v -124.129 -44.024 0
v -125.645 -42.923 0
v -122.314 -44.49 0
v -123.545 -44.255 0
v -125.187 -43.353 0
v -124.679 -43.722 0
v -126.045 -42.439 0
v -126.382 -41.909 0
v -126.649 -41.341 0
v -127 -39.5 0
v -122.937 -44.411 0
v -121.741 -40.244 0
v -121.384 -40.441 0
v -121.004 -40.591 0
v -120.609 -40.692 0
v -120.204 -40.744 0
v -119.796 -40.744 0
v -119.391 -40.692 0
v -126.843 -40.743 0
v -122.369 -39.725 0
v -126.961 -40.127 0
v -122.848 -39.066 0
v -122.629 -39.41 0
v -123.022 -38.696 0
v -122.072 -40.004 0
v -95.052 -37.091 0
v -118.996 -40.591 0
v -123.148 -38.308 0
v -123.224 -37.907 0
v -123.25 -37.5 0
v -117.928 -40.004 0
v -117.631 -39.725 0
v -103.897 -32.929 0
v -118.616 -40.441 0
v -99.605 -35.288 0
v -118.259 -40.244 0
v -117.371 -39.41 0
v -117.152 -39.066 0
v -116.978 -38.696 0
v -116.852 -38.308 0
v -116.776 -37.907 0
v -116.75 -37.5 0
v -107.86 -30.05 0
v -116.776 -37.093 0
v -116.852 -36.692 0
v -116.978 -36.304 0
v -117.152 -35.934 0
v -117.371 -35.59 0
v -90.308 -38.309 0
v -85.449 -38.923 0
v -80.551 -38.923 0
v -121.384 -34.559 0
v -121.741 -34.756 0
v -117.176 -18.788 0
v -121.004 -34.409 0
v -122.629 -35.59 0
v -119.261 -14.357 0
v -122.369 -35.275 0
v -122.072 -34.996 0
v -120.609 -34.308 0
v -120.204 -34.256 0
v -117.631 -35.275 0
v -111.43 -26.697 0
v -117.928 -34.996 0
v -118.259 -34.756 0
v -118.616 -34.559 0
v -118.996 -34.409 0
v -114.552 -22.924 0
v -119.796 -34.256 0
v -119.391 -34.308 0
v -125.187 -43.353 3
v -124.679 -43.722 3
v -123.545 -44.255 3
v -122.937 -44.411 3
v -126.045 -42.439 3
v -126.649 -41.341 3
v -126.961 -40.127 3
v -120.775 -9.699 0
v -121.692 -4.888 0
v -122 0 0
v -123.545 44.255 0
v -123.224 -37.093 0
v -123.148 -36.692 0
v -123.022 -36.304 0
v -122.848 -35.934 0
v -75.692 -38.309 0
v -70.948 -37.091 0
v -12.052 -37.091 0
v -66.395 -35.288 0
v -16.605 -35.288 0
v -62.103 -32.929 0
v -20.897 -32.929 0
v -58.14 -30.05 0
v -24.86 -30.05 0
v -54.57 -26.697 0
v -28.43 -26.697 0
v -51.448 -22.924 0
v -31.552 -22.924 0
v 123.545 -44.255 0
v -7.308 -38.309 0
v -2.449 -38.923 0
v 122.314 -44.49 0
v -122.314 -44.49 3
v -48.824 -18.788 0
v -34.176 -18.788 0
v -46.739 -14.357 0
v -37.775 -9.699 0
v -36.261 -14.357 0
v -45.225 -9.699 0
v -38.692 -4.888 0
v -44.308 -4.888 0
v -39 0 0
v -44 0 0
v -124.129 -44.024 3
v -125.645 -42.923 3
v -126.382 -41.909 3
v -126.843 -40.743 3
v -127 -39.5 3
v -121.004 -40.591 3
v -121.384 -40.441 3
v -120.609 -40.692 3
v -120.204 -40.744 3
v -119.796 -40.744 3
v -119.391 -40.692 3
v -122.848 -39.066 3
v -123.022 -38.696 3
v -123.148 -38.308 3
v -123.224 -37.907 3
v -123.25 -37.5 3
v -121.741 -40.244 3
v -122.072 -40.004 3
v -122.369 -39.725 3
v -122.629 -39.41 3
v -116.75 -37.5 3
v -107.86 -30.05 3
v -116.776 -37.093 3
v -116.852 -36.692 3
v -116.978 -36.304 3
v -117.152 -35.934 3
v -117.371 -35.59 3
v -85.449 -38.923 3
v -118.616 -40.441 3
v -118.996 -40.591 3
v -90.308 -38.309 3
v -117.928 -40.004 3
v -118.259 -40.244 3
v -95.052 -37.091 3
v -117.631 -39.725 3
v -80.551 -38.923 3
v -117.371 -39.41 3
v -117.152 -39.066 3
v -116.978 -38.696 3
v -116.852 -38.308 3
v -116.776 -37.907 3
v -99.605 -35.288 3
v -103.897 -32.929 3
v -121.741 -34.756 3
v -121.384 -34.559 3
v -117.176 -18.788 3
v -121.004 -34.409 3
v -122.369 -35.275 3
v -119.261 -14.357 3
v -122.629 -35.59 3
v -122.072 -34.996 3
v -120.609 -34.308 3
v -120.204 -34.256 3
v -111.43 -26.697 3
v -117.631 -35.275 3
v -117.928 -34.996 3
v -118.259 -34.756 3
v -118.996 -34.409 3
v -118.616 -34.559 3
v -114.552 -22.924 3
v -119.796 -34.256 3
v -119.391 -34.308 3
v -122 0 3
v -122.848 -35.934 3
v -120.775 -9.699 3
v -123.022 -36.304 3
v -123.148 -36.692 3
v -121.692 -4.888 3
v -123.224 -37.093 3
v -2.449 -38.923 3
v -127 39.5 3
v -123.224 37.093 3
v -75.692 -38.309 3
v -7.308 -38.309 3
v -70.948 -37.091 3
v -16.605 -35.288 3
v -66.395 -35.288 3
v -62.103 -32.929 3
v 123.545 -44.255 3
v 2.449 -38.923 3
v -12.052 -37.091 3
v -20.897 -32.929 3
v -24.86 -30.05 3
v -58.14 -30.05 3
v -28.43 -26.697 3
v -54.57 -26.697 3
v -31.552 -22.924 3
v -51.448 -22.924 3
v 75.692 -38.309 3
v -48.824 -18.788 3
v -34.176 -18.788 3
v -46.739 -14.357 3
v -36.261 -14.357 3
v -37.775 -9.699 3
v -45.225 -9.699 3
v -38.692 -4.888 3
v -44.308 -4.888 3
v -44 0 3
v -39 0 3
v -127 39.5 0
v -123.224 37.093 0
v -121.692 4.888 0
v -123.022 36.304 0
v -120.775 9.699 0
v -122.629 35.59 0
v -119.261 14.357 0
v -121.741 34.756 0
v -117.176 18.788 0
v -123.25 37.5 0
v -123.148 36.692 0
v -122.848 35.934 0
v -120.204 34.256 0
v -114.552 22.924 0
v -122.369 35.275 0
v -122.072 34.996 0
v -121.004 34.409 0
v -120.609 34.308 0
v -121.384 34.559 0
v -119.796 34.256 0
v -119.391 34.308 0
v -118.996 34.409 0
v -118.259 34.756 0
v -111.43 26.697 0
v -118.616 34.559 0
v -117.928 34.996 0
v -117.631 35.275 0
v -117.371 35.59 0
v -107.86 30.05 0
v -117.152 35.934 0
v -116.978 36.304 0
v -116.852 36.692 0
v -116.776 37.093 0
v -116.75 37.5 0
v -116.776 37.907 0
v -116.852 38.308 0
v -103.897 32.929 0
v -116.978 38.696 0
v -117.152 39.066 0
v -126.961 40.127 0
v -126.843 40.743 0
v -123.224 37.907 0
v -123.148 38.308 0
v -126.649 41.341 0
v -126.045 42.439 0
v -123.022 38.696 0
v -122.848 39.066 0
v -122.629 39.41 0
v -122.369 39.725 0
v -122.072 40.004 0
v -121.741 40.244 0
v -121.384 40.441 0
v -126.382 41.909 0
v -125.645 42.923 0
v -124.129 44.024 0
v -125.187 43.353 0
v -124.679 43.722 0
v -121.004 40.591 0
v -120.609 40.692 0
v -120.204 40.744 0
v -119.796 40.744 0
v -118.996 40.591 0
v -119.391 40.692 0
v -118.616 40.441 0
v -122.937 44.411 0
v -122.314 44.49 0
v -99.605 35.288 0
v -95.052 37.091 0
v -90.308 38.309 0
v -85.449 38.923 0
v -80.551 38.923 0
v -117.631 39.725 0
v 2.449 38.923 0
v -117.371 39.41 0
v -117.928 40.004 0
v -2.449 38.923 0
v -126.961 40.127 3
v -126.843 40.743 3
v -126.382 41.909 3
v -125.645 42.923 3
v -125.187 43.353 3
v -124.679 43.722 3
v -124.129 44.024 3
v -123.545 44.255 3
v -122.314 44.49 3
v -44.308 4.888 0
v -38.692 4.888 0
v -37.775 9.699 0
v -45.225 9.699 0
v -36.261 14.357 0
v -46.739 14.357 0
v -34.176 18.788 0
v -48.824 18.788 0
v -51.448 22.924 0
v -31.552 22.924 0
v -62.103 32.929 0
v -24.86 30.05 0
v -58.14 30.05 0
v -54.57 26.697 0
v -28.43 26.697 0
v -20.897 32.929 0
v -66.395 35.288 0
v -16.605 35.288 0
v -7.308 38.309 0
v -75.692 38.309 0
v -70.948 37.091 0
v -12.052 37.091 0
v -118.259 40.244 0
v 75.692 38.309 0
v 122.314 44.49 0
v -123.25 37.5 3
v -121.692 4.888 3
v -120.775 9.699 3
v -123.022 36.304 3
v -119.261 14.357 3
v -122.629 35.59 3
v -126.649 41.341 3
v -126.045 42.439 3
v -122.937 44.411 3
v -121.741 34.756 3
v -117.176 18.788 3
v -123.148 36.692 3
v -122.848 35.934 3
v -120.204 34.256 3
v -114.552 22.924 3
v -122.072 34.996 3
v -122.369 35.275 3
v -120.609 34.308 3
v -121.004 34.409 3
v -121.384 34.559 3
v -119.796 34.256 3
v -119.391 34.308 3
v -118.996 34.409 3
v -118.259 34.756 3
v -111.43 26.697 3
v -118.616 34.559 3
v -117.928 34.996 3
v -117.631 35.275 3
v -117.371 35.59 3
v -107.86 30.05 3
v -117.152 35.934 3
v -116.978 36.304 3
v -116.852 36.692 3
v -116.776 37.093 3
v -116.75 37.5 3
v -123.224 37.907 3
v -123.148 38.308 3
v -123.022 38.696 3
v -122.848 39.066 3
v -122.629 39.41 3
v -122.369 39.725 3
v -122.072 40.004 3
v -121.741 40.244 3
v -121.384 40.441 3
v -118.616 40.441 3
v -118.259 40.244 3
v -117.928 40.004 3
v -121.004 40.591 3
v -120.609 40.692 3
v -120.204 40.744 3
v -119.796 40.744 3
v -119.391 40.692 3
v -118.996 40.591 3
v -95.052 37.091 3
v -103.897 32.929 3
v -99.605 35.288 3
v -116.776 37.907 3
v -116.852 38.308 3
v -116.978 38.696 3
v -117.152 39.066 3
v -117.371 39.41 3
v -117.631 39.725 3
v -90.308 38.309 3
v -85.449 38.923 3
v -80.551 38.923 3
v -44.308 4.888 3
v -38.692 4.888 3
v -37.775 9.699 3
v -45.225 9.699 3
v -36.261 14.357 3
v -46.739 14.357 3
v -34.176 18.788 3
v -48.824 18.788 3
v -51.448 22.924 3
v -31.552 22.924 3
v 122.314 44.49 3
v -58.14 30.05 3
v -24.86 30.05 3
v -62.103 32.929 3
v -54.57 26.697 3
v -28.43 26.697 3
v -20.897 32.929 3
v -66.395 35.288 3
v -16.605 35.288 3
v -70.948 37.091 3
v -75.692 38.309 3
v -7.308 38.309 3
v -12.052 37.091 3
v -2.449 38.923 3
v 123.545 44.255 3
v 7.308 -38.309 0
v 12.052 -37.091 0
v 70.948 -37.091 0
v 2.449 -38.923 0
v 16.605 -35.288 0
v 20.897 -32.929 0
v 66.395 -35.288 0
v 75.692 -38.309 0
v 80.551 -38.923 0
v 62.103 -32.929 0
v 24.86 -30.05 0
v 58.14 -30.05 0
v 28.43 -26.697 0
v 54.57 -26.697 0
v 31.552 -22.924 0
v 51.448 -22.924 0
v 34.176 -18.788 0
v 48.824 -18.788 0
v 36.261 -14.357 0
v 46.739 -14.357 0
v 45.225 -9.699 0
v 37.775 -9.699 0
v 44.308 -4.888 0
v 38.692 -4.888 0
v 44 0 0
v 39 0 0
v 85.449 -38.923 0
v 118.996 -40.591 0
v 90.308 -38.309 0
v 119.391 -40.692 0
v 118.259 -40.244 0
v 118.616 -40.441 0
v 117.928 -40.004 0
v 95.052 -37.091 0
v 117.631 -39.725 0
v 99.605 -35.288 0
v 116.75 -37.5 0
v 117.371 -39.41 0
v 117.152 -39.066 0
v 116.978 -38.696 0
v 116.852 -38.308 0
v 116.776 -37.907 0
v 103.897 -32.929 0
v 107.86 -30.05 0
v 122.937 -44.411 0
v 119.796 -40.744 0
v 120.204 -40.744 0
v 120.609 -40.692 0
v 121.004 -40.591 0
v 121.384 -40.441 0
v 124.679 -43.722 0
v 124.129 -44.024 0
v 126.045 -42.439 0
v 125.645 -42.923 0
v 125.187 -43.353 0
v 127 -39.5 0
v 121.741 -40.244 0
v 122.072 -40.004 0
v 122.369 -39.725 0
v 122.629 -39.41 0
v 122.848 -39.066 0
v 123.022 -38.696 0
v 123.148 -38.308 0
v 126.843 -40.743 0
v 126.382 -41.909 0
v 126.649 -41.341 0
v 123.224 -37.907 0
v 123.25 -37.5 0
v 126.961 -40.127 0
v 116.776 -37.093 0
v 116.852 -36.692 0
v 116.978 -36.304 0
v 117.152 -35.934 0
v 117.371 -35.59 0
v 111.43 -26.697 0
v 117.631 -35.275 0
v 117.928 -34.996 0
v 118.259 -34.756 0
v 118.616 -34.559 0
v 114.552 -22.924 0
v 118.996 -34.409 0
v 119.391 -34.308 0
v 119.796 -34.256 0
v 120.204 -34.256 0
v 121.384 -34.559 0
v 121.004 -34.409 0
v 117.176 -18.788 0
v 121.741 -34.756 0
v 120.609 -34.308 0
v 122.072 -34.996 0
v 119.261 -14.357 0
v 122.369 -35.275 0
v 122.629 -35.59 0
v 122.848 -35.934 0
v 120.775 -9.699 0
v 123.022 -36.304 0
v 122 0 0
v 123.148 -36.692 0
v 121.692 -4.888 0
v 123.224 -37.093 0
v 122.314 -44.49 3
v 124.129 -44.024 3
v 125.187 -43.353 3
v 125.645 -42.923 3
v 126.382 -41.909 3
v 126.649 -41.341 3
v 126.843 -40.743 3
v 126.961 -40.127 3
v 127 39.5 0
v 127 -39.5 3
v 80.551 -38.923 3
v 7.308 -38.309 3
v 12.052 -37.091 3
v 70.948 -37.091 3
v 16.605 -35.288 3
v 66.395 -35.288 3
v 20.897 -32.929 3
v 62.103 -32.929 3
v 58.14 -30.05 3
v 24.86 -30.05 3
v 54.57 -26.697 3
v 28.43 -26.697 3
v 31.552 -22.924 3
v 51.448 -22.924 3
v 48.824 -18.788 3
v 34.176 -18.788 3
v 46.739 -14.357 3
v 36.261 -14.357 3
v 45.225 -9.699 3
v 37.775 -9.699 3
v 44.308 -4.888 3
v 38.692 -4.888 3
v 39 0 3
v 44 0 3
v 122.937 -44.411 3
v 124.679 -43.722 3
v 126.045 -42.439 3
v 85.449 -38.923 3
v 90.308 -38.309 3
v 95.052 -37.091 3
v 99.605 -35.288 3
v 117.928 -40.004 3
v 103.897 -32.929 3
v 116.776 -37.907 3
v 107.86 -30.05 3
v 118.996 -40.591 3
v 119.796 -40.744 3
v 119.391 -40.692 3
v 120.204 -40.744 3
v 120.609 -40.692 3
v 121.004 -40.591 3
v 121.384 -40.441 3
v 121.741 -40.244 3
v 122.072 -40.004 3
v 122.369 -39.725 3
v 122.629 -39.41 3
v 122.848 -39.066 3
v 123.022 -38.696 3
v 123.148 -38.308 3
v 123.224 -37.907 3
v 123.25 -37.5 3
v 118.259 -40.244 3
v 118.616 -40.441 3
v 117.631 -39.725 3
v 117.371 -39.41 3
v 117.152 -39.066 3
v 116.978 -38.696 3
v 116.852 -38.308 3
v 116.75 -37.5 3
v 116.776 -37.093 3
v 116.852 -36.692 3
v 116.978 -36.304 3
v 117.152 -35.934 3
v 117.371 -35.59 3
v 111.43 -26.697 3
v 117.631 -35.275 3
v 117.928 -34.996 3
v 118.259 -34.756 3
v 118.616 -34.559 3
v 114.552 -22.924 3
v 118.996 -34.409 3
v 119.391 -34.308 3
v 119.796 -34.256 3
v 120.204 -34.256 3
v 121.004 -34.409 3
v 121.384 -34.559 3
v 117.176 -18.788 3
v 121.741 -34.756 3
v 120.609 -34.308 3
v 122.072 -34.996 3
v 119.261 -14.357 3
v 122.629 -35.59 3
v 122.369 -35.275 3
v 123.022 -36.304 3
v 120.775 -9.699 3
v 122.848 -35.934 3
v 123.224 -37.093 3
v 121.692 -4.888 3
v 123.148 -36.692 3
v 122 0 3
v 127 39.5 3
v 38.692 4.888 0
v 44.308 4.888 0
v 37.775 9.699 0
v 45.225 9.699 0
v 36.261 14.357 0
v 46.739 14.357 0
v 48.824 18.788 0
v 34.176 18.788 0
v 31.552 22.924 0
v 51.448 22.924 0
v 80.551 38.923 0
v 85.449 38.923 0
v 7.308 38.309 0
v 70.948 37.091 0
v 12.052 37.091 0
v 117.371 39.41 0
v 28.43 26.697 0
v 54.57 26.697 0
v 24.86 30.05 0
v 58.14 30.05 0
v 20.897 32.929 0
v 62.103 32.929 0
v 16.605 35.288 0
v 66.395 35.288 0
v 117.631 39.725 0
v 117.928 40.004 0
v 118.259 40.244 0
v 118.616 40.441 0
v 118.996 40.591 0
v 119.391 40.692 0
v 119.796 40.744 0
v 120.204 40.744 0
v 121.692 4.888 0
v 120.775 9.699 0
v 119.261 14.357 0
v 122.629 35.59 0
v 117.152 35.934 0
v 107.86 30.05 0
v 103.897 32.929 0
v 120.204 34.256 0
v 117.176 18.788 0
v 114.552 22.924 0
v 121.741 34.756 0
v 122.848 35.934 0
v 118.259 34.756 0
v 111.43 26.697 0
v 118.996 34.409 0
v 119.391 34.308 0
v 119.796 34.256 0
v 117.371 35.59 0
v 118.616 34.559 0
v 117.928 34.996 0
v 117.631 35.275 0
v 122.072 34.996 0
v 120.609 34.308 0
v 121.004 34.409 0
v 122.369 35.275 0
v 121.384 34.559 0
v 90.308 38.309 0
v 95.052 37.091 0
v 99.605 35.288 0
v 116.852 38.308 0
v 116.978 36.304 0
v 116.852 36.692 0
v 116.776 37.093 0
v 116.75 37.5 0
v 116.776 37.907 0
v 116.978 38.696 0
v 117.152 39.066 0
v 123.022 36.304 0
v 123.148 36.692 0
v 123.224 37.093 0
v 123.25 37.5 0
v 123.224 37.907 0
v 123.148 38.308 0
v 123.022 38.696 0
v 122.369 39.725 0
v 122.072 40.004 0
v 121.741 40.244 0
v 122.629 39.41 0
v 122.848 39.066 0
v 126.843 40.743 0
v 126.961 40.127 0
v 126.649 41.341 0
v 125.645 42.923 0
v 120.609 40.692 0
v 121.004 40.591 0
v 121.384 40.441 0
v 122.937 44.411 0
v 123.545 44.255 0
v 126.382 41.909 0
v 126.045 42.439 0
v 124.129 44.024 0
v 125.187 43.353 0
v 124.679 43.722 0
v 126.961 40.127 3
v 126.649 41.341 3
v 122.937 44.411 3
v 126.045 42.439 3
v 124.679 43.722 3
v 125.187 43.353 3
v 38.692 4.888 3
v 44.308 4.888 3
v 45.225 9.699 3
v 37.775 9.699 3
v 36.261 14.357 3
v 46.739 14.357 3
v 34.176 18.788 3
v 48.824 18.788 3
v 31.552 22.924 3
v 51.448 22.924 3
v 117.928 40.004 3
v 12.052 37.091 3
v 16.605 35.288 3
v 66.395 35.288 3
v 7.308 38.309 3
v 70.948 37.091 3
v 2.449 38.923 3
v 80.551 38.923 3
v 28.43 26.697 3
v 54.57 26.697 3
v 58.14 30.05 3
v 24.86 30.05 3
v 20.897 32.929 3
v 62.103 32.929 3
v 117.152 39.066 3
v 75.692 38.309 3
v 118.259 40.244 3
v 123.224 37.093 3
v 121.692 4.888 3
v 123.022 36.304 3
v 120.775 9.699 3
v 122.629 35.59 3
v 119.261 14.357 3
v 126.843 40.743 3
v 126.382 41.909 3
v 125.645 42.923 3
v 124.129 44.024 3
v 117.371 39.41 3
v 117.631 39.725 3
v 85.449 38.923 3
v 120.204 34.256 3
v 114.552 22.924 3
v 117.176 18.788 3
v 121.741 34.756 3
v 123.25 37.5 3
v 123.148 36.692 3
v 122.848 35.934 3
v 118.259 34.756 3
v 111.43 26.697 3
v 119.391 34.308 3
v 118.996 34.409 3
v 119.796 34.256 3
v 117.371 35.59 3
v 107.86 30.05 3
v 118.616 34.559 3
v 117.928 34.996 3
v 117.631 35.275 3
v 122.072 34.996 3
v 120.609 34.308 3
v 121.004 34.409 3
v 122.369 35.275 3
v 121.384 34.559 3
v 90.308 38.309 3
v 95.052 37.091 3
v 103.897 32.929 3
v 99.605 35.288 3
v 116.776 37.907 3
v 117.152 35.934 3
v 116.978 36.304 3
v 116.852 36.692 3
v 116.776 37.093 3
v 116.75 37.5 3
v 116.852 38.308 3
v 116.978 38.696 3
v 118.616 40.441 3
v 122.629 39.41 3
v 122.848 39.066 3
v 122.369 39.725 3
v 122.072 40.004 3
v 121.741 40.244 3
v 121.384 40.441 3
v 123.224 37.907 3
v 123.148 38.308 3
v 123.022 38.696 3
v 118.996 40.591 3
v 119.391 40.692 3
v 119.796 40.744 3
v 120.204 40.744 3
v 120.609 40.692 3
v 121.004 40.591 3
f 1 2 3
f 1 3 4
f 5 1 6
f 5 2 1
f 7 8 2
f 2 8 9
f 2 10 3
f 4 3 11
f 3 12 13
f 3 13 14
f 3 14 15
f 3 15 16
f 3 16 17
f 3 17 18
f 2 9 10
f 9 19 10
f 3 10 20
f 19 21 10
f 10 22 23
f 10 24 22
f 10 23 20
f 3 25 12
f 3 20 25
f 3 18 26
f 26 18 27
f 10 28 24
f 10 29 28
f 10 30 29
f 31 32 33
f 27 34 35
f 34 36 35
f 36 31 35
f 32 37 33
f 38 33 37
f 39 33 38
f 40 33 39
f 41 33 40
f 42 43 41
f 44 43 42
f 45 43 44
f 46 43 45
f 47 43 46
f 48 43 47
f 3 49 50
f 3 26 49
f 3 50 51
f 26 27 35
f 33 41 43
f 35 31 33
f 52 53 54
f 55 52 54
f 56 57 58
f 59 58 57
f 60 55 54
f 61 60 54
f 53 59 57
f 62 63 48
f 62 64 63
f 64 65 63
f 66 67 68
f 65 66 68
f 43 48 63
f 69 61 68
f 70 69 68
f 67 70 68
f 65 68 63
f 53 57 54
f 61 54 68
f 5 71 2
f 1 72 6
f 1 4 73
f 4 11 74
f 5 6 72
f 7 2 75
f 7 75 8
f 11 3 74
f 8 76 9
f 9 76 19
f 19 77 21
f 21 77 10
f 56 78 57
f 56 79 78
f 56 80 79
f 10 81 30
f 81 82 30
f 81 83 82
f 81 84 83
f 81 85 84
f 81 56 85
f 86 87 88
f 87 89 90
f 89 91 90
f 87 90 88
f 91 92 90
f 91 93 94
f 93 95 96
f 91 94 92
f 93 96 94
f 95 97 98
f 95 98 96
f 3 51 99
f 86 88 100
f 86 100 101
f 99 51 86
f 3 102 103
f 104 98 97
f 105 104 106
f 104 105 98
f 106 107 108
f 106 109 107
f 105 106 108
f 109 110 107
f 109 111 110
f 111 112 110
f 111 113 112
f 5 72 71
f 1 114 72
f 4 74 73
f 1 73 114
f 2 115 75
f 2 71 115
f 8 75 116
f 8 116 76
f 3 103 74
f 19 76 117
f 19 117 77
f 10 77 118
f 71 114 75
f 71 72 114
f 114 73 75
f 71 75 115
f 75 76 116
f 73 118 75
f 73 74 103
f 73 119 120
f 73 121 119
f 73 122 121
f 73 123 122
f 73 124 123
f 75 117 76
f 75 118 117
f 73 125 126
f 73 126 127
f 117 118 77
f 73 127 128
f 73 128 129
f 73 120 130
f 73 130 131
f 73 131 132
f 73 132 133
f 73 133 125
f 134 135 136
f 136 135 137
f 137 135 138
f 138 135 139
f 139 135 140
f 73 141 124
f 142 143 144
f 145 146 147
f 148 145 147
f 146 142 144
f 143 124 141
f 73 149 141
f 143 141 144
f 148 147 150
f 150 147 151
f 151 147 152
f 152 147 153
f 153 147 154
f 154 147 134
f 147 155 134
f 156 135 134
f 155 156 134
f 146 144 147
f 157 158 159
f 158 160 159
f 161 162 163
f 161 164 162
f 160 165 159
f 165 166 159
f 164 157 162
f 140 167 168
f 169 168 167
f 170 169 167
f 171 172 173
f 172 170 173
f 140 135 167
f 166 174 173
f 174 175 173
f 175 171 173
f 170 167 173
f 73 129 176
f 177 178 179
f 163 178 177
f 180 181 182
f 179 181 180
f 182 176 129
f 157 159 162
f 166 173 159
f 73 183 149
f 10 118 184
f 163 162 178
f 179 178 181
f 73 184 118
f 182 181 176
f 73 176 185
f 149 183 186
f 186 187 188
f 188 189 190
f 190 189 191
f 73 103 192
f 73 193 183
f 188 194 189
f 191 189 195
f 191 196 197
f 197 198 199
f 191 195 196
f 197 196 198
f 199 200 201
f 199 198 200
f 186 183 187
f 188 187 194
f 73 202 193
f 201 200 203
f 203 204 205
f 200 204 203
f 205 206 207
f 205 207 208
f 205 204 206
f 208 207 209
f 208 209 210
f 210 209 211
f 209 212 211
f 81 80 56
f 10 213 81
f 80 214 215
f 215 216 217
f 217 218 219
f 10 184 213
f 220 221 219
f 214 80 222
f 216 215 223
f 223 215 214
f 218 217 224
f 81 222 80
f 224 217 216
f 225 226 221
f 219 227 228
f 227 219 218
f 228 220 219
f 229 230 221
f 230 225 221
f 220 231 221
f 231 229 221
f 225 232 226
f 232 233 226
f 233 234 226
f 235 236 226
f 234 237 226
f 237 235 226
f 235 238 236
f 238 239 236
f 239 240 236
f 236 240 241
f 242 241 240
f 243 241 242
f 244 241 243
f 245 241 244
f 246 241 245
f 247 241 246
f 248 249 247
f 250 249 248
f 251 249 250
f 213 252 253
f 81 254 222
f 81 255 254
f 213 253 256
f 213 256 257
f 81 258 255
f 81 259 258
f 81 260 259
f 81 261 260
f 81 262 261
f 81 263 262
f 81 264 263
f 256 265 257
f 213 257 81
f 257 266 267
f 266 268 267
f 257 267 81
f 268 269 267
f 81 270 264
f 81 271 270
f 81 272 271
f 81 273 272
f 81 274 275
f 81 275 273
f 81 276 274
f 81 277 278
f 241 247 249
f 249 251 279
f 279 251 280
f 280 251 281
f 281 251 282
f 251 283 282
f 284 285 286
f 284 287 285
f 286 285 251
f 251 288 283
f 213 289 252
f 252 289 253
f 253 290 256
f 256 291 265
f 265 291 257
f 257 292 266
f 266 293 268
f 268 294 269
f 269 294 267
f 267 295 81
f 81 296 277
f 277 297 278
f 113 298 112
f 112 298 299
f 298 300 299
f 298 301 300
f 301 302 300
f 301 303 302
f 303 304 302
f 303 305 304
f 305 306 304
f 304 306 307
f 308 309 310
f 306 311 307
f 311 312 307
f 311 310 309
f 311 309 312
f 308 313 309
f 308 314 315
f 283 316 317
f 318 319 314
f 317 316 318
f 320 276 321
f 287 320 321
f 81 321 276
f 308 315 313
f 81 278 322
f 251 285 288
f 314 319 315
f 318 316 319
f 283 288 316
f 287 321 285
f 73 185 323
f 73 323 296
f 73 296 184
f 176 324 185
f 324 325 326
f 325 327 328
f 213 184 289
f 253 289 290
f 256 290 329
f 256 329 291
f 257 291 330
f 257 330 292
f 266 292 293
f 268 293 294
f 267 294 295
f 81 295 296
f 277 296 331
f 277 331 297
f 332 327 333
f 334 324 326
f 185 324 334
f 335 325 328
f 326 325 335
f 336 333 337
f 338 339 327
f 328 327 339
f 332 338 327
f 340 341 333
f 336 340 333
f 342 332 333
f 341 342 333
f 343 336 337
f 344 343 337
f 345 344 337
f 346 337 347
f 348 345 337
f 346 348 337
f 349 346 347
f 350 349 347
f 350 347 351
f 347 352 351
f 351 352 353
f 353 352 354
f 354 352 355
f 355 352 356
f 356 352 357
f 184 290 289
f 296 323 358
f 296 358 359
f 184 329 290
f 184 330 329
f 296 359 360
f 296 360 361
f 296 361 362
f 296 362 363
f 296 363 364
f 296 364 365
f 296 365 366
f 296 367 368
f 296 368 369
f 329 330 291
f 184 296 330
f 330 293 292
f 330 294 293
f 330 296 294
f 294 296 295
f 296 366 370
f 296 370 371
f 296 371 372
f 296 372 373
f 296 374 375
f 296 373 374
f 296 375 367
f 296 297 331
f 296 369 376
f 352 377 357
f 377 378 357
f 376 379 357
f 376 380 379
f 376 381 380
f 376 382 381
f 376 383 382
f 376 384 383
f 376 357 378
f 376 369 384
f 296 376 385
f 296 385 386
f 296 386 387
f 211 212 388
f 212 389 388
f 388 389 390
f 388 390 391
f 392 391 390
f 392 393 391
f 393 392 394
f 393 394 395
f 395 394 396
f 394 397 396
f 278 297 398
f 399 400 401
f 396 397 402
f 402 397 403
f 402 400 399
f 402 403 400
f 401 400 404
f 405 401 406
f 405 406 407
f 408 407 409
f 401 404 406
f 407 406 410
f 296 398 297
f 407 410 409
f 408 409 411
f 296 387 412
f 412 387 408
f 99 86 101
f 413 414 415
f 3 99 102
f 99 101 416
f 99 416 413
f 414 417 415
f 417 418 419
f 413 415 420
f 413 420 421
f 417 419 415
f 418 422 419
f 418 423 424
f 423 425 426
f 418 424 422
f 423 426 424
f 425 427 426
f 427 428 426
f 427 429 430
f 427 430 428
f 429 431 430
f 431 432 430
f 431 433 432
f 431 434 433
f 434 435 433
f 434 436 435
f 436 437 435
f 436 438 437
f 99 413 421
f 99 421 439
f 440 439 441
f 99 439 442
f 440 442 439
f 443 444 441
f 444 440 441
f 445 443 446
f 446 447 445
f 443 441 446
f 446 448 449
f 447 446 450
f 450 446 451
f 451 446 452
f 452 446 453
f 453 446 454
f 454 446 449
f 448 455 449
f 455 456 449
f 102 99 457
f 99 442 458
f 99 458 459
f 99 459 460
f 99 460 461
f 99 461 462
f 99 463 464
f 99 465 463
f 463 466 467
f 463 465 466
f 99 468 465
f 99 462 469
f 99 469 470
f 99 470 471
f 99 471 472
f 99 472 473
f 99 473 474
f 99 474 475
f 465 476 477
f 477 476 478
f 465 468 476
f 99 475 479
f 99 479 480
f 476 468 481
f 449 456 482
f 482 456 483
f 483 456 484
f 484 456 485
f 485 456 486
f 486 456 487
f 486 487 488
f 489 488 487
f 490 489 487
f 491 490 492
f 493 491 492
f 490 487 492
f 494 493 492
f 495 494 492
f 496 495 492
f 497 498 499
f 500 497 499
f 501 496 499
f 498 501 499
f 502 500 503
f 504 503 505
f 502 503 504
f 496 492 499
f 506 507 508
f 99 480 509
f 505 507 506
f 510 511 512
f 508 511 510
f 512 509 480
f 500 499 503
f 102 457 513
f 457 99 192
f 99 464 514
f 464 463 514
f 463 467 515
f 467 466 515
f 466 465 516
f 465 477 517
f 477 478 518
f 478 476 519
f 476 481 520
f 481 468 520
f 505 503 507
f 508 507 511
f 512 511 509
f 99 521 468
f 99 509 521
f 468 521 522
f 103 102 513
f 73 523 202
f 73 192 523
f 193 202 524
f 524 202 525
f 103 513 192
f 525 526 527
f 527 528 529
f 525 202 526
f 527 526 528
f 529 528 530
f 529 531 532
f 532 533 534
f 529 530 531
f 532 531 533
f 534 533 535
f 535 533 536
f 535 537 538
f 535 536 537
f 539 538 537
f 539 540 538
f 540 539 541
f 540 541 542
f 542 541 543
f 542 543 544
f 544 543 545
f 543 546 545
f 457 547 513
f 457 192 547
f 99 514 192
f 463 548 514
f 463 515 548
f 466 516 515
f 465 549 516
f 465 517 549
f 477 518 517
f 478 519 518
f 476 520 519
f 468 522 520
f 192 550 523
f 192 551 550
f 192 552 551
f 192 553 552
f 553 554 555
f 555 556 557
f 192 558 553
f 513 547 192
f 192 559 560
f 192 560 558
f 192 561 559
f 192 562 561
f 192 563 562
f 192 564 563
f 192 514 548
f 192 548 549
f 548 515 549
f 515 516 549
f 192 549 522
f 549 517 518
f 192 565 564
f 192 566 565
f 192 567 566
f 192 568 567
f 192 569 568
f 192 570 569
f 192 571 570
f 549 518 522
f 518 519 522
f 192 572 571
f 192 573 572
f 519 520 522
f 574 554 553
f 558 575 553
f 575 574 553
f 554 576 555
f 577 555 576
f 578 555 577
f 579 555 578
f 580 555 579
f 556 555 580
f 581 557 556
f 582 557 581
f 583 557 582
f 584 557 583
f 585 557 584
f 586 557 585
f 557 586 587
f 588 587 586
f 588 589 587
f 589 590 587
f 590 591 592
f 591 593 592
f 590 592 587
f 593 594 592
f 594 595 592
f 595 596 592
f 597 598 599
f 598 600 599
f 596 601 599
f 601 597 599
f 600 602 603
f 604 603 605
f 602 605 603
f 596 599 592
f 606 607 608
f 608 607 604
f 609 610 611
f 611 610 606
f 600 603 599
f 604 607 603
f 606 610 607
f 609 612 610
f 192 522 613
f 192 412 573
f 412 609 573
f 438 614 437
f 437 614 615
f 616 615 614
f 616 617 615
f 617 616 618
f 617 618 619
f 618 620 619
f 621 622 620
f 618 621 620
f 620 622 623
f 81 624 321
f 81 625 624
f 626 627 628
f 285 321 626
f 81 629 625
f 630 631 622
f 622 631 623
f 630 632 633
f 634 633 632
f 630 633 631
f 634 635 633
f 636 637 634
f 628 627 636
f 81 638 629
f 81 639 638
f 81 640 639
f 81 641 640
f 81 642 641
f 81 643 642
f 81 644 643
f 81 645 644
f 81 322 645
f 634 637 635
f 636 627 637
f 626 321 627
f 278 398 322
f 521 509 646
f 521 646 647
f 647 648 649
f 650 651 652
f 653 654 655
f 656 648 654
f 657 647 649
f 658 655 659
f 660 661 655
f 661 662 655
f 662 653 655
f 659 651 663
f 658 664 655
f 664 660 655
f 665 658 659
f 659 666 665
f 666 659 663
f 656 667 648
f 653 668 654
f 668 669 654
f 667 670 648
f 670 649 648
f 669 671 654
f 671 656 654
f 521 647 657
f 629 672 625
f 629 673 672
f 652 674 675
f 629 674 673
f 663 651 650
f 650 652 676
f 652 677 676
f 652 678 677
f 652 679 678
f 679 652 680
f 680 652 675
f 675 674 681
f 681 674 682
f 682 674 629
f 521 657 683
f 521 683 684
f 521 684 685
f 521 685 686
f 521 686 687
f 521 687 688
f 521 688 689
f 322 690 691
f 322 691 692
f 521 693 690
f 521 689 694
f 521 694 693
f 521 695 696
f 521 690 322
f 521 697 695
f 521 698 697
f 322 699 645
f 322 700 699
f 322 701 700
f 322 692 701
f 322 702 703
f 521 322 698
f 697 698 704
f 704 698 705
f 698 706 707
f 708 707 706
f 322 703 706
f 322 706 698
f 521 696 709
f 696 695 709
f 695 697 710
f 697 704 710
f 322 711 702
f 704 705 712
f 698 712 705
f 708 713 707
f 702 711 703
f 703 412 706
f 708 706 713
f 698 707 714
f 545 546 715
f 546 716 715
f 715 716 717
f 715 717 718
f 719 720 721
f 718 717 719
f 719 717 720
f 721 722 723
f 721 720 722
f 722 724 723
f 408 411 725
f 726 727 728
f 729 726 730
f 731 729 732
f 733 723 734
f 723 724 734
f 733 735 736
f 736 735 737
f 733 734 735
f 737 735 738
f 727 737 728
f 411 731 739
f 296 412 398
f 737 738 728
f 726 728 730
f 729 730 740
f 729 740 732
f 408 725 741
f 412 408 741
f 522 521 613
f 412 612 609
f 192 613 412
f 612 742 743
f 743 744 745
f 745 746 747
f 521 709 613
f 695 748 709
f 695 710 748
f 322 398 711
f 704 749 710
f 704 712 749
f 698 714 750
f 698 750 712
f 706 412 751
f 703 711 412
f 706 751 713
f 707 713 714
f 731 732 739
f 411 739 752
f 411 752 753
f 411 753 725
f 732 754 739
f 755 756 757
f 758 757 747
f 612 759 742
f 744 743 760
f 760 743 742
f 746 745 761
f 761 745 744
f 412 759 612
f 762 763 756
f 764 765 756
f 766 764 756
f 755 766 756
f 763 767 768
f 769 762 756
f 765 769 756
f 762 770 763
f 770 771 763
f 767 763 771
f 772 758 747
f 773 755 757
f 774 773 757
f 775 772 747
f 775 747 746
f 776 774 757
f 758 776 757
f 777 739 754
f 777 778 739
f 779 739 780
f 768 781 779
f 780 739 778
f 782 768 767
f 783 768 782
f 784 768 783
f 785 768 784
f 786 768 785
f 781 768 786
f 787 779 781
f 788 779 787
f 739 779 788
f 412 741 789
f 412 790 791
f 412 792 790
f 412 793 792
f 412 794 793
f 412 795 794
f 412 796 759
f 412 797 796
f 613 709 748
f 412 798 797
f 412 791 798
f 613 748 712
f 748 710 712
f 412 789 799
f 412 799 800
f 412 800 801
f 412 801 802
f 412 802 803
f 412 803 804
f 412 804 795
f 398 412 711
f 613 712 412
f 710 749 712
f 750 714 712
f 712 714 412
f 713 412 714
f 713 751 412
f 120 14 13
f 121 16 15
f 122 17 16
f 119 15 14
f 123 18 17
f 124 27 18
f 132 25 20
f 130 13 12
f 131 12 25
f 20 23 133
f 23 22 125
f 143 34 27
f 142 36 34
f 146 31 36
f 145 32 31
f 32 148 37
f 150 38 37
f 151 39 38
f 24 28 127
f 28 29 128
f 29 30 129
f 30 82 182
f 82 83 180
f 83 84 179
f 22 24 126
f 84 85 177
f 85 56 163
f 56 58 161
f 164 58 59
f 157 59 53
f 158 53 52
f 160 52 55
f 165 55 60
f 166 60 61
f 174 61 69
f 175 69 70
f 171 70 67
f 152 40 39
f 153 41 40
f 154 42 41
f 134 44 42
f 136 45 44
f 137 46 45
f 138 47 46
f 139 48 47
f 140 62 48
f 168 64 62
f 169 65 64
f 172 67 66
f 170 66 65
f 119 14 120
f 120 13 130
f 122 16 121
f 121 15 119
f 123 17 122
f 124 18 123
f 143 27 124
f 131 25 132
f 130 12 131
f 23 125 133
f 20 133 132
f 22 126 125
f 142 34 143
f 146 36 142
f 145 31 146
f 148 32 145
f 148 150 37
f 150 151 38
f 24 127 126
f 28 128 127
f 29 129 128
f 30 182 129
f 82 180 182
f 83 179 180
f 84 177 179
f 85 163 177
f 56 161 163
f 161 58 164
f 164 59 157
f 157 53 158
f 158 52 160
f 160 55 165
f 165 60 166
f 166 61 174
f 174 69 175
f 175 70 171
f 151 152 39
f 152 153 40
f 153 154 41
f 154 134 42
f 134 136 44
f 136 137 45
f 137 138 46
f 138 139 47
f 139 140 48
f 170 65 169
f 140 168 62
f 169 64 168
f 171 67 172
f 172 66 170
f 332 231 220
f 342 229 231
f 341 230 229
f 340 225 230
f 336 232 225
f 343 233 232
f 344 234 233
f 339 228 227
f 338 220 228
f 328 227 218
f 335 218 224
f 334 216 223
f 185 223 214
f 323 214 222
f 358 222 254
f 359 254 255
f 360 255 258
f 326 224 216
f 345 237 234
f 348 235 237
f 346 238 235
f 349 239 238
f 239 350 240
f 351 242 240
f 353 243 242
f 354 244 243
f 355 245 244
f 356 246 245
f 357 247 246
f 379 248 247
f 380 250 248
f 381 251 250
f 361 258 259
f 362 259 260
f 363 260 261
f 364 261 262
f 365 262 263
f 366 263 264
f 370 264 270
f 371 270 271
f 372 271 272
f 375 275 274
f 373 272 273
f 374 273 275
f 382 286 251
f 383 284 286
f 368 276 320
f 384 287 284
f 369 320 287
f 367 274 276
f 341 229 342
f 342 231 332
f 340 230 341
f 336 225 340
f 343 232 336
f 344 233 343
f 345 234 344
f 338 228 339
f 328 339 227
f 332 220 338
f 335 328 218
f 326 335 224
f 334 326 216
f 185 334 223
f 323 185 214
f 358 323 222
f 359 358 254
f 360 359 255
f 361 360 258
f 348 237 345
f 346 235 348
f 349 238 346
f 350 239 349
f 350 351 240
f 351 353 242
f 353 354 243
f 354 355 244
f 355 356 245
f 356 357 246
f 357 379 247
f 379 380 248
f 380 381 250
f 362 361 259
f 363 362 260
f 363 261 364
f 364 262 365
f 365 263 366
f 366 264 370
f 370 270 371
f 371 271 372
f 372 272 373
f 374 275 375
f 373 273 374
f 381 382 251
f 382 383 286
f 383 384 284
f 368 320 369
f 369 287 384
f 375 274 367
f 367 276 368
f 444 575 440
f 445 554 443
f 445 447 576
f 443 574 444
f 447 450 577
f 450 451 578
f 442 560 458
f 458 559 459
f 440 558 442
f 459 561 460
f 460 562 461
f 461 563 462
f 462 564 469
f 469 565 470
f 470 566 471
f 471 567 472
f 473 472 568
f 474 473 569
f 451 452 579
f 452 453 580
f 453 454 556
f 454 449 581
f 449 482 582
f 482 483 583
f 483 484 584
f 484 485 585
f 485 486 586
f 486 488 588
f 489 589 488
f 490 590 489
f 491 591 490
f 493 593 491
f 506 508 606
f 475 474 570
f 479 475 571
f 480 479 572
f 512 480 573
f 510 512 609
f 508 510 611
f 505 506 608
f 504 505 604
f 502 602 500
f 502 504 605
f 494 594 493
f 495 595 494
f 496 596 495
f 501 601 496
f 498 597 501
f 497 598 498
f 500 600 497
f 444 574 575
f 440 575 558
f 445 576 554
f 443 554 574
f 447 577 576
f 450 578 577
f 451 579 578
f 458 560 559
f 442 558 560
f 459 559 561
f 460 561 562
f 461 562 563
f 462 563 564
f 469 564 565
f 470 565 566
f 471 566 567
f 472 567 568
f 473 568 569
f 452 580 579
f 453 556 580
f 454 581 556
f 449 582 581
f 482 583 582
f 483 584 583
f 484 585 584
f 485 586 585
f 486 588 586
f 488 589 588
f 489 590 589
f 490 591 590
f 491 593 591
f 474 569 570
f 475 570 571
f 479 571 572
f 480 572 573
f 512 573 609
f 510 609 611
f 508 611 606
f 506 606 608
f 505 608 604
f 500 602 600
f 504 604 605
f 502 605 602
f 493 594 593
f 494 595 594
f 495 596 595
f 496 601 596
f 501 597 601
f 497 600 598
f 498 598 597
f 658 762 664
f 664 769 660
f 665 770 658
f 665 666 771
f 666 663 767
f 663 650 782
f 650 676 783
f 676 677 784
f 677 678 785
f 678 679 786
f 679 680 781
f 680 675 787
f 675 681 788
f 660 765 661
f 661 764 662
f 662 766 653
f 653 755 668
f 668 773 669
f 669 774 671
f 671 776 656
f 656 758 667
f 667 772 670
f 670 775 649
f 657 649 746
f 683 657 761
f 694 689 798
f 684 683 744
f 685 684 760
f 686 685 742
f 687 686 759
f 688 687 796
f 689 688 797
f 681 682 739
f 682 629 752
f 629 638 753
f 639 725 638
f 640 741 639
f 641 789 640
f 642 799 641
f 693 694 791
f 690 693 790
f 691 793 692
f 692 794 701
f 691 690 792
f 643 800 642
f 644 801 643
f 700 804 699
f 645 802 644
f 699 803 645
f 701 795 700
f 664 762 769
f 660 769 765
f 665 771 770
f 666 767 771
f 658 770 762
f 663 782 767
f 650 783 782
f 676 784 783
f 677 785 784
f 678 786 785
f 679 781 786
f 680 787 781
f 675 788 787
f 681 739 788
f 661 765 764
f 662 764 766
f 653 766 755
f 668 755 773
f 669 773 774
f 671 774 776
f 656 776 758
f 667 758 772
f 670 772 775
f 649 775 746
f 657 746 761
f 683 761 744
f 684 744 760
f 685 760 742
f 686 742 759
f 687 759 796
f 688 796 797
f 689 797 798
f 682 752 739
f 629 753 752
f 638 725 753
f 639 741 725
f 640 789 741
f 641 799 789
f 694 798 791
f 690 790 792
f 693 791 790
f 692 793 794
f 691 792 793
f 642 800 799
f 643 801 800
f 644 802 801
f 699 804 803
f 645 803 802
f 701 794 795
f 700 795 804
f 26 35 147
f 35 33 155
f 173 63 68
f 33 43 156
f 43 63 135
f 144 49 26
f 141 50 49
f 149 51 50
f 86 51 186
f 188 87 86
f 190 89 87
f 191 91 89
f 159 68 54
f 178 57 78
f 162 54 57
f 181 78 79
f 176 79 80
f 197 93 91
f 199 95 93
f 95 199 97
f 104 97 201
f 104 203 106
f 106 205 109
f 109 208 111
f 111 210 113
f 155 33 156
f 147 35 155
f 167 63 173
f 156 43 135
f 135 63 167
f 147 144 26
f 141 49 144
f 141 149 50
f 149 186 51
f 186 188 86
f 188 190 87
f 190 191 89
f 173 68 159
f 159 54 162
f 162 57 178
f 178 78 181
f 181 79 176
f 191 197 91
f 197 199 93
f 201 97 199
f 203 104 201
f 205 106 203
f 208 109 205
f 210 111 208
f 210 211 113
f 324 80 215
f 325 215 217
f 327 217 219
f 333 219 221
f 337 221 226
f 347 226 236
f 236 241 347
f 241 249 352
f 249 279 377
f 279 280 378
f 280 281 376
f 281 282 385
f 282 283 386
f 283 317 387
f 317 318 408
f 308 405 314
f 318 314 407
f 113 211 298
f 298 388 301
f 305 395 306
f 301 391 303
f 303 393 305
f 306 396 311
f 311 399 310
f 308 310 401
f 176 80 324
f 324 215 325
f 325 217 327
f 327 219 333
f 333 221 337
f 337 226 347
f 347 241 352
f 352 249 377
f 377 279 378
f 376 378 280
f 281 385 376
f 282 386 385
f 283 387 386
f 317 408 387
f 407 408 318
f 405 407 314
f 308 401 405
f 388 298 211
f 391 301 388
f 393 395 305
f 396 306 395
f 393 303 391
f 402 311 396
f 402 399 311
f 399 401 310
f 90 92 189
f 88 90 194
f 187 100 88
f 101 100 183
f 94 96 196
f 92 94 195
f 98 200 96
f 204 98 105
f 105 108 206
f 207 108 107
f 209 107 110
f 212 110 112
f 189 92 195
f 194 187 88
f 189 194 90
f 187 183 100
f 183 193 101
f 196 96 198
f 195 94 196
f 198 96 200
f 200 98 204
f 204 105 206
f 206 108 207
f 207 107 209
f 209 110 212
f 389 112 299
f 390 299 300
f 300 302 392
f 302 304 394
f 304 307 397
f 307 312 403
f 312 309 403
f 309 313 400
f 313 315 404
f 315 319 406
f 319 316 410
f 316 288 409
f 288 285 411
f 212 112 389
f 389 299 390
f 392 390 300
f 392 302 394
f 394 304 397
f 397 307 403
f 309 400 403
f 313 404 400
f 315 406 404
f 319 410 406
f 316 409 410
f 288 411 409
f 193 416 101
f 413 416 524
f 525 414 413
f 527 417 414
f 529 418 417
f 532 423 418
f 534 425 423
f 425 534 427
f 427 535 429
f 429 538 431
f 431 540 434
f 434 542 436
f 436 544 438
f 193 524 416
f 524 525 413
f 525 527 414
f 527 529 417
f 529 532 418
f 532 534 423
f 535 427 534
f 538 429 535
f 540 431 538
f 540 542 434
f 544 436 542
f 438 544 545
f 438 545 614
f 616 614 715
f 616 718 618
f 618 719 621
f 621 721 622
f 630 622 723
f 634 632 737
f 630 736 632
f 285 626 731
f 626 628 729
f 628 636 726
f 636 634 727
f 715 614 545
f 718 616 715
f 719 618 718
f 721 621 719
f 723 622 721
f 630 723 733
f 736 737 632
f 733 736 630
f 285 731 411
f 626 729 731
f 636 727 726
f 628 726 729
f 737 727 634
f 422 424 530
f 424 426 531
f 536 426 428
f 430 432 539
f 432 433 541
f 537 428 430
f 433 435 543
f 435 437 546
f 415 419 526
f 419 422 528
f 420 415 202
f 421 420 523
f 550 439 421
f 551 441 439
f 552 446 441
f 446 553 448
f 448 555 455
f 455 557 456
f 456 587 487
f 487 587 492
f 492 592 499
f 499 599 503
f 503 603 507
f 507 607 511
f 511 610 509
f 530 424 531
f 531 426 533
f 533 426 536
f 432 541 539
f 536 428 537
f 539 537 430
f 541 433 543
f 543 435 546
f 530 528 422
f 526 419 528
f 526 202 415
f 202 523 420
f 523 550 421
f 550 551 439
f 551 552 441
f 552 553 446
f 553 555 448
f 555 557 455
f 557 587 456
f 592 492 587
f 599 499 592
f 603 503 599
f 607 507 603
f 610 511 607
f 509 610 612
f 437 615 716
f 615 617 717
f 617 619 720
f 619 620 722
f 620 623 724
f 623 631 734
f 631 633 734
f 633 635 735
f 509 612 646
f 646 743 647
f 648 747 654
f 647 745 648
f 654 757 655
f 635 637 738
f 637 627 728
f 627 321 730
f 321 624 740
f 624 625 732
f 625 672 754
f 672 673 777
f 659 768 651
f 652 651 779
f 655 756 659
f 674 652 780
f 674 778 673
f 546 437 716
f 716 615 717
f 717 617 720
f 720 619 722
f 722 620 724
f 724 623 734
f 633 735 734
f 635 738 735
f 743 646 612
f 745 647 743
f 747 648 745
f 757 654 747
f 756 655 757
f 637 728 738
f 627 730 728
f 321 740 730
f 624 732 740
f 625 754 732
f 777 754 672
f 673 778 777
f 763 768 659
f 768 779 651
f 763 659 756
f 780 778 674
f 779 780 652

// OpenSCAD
$fn = 50;

difference() {
	union() {
		hull() {
			translate(v = [-122.0, 39.5, 0]) {
				cylinder(h = 3, r = 5);
			}
			translate(v = [122.0, 39.5, 0]) {
				cylinder(h = 3, r = 5);
			}
			translate(v = [-122.0, -39.5, 0]) {
				cylinder(h = 3, r = 5);
			}
			translate(v = [122.0, -39.5, 0]) {
				cylinder(h = 3, r = 5);
			}
		}
	}
	union() {
		translate(v = [-120.0, -37.5, -100.0]) {
			cylinder(h = 200, r = 3.25);
		}
		translate(v = [-120.0, 37.5, -100.0]) {
			cylinder(h = 200, r = 3.25);
		}
		translate(v = [120.0, -37.5, -100.0]) {
			cylinder(h = 200, r = 3.25);
		}
		translate(v = [120.0, 37.5, -100.0]) {
			cylinder(h = 200, r = 3.25);
		}
		translate(v = [-120.0, -37.5, -100.0]) {
			cylinder(h = 200, r = 1.8);
		}
		translate(v = [-120.0, 37.5, -100.0]) {
			cylinder(h = 200, r = 1.8);
		}
		translate(v = [120.0, -37.5, -100.0]) {
			cylinder(h = 200, r = 1.8);
		}
		translate(v = [120.0, 37.5, -100.0]) {
			cylinder(h = 200, r = 1.8);
		}
		translate(v = [-83.0, 0, 0.0]) {
			cylinder(h = 3, r = 39.0);
		}
		cylinder(h = 3, r = 39.0);
		translate(v = [83.0, 0, 0.0]) {
			cylinder(h = 3, r = 39.0);
		}
	}
}
